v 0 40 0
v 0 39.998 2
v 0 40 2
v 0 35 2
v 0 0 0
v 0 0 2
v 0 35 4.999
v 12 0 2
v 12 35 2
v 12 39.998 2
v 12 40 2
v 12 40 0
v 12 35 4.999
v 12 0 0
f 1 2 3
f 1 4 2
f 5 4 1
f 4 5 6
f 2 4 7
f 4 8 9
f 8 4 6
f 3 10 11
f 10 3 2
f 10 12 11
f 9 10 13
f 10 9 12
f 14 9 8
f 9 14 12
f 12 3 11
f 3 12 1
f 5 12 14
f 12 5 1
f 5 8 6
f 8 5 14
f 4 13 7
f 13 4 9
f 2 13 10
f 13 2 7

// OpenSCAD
// The $fn parameter will influence all objects inside this module
// It can, optionally, be overridden when instantiating the module


module prism(l, w, h){
   polyhedron(
           points=[[0,0,0], [l,0,0], [l,w,0], [0,w,0], [0,w,h], [l,w,h]],
           faces=[[0,1,2,3],[5,4,3,2],[0,4,5,1],[0,3,4],[5,2,1]]
           );
   
 
   }
       
module Clip(length=50, $fn=100) {
    cube([12,length,2]);
    #translate([12,length, 2-0.001]){
        rotate([0,0,180]) {
                prism(12,5,3);
        }
    }
}

Clip(40);

echo(version=version());
